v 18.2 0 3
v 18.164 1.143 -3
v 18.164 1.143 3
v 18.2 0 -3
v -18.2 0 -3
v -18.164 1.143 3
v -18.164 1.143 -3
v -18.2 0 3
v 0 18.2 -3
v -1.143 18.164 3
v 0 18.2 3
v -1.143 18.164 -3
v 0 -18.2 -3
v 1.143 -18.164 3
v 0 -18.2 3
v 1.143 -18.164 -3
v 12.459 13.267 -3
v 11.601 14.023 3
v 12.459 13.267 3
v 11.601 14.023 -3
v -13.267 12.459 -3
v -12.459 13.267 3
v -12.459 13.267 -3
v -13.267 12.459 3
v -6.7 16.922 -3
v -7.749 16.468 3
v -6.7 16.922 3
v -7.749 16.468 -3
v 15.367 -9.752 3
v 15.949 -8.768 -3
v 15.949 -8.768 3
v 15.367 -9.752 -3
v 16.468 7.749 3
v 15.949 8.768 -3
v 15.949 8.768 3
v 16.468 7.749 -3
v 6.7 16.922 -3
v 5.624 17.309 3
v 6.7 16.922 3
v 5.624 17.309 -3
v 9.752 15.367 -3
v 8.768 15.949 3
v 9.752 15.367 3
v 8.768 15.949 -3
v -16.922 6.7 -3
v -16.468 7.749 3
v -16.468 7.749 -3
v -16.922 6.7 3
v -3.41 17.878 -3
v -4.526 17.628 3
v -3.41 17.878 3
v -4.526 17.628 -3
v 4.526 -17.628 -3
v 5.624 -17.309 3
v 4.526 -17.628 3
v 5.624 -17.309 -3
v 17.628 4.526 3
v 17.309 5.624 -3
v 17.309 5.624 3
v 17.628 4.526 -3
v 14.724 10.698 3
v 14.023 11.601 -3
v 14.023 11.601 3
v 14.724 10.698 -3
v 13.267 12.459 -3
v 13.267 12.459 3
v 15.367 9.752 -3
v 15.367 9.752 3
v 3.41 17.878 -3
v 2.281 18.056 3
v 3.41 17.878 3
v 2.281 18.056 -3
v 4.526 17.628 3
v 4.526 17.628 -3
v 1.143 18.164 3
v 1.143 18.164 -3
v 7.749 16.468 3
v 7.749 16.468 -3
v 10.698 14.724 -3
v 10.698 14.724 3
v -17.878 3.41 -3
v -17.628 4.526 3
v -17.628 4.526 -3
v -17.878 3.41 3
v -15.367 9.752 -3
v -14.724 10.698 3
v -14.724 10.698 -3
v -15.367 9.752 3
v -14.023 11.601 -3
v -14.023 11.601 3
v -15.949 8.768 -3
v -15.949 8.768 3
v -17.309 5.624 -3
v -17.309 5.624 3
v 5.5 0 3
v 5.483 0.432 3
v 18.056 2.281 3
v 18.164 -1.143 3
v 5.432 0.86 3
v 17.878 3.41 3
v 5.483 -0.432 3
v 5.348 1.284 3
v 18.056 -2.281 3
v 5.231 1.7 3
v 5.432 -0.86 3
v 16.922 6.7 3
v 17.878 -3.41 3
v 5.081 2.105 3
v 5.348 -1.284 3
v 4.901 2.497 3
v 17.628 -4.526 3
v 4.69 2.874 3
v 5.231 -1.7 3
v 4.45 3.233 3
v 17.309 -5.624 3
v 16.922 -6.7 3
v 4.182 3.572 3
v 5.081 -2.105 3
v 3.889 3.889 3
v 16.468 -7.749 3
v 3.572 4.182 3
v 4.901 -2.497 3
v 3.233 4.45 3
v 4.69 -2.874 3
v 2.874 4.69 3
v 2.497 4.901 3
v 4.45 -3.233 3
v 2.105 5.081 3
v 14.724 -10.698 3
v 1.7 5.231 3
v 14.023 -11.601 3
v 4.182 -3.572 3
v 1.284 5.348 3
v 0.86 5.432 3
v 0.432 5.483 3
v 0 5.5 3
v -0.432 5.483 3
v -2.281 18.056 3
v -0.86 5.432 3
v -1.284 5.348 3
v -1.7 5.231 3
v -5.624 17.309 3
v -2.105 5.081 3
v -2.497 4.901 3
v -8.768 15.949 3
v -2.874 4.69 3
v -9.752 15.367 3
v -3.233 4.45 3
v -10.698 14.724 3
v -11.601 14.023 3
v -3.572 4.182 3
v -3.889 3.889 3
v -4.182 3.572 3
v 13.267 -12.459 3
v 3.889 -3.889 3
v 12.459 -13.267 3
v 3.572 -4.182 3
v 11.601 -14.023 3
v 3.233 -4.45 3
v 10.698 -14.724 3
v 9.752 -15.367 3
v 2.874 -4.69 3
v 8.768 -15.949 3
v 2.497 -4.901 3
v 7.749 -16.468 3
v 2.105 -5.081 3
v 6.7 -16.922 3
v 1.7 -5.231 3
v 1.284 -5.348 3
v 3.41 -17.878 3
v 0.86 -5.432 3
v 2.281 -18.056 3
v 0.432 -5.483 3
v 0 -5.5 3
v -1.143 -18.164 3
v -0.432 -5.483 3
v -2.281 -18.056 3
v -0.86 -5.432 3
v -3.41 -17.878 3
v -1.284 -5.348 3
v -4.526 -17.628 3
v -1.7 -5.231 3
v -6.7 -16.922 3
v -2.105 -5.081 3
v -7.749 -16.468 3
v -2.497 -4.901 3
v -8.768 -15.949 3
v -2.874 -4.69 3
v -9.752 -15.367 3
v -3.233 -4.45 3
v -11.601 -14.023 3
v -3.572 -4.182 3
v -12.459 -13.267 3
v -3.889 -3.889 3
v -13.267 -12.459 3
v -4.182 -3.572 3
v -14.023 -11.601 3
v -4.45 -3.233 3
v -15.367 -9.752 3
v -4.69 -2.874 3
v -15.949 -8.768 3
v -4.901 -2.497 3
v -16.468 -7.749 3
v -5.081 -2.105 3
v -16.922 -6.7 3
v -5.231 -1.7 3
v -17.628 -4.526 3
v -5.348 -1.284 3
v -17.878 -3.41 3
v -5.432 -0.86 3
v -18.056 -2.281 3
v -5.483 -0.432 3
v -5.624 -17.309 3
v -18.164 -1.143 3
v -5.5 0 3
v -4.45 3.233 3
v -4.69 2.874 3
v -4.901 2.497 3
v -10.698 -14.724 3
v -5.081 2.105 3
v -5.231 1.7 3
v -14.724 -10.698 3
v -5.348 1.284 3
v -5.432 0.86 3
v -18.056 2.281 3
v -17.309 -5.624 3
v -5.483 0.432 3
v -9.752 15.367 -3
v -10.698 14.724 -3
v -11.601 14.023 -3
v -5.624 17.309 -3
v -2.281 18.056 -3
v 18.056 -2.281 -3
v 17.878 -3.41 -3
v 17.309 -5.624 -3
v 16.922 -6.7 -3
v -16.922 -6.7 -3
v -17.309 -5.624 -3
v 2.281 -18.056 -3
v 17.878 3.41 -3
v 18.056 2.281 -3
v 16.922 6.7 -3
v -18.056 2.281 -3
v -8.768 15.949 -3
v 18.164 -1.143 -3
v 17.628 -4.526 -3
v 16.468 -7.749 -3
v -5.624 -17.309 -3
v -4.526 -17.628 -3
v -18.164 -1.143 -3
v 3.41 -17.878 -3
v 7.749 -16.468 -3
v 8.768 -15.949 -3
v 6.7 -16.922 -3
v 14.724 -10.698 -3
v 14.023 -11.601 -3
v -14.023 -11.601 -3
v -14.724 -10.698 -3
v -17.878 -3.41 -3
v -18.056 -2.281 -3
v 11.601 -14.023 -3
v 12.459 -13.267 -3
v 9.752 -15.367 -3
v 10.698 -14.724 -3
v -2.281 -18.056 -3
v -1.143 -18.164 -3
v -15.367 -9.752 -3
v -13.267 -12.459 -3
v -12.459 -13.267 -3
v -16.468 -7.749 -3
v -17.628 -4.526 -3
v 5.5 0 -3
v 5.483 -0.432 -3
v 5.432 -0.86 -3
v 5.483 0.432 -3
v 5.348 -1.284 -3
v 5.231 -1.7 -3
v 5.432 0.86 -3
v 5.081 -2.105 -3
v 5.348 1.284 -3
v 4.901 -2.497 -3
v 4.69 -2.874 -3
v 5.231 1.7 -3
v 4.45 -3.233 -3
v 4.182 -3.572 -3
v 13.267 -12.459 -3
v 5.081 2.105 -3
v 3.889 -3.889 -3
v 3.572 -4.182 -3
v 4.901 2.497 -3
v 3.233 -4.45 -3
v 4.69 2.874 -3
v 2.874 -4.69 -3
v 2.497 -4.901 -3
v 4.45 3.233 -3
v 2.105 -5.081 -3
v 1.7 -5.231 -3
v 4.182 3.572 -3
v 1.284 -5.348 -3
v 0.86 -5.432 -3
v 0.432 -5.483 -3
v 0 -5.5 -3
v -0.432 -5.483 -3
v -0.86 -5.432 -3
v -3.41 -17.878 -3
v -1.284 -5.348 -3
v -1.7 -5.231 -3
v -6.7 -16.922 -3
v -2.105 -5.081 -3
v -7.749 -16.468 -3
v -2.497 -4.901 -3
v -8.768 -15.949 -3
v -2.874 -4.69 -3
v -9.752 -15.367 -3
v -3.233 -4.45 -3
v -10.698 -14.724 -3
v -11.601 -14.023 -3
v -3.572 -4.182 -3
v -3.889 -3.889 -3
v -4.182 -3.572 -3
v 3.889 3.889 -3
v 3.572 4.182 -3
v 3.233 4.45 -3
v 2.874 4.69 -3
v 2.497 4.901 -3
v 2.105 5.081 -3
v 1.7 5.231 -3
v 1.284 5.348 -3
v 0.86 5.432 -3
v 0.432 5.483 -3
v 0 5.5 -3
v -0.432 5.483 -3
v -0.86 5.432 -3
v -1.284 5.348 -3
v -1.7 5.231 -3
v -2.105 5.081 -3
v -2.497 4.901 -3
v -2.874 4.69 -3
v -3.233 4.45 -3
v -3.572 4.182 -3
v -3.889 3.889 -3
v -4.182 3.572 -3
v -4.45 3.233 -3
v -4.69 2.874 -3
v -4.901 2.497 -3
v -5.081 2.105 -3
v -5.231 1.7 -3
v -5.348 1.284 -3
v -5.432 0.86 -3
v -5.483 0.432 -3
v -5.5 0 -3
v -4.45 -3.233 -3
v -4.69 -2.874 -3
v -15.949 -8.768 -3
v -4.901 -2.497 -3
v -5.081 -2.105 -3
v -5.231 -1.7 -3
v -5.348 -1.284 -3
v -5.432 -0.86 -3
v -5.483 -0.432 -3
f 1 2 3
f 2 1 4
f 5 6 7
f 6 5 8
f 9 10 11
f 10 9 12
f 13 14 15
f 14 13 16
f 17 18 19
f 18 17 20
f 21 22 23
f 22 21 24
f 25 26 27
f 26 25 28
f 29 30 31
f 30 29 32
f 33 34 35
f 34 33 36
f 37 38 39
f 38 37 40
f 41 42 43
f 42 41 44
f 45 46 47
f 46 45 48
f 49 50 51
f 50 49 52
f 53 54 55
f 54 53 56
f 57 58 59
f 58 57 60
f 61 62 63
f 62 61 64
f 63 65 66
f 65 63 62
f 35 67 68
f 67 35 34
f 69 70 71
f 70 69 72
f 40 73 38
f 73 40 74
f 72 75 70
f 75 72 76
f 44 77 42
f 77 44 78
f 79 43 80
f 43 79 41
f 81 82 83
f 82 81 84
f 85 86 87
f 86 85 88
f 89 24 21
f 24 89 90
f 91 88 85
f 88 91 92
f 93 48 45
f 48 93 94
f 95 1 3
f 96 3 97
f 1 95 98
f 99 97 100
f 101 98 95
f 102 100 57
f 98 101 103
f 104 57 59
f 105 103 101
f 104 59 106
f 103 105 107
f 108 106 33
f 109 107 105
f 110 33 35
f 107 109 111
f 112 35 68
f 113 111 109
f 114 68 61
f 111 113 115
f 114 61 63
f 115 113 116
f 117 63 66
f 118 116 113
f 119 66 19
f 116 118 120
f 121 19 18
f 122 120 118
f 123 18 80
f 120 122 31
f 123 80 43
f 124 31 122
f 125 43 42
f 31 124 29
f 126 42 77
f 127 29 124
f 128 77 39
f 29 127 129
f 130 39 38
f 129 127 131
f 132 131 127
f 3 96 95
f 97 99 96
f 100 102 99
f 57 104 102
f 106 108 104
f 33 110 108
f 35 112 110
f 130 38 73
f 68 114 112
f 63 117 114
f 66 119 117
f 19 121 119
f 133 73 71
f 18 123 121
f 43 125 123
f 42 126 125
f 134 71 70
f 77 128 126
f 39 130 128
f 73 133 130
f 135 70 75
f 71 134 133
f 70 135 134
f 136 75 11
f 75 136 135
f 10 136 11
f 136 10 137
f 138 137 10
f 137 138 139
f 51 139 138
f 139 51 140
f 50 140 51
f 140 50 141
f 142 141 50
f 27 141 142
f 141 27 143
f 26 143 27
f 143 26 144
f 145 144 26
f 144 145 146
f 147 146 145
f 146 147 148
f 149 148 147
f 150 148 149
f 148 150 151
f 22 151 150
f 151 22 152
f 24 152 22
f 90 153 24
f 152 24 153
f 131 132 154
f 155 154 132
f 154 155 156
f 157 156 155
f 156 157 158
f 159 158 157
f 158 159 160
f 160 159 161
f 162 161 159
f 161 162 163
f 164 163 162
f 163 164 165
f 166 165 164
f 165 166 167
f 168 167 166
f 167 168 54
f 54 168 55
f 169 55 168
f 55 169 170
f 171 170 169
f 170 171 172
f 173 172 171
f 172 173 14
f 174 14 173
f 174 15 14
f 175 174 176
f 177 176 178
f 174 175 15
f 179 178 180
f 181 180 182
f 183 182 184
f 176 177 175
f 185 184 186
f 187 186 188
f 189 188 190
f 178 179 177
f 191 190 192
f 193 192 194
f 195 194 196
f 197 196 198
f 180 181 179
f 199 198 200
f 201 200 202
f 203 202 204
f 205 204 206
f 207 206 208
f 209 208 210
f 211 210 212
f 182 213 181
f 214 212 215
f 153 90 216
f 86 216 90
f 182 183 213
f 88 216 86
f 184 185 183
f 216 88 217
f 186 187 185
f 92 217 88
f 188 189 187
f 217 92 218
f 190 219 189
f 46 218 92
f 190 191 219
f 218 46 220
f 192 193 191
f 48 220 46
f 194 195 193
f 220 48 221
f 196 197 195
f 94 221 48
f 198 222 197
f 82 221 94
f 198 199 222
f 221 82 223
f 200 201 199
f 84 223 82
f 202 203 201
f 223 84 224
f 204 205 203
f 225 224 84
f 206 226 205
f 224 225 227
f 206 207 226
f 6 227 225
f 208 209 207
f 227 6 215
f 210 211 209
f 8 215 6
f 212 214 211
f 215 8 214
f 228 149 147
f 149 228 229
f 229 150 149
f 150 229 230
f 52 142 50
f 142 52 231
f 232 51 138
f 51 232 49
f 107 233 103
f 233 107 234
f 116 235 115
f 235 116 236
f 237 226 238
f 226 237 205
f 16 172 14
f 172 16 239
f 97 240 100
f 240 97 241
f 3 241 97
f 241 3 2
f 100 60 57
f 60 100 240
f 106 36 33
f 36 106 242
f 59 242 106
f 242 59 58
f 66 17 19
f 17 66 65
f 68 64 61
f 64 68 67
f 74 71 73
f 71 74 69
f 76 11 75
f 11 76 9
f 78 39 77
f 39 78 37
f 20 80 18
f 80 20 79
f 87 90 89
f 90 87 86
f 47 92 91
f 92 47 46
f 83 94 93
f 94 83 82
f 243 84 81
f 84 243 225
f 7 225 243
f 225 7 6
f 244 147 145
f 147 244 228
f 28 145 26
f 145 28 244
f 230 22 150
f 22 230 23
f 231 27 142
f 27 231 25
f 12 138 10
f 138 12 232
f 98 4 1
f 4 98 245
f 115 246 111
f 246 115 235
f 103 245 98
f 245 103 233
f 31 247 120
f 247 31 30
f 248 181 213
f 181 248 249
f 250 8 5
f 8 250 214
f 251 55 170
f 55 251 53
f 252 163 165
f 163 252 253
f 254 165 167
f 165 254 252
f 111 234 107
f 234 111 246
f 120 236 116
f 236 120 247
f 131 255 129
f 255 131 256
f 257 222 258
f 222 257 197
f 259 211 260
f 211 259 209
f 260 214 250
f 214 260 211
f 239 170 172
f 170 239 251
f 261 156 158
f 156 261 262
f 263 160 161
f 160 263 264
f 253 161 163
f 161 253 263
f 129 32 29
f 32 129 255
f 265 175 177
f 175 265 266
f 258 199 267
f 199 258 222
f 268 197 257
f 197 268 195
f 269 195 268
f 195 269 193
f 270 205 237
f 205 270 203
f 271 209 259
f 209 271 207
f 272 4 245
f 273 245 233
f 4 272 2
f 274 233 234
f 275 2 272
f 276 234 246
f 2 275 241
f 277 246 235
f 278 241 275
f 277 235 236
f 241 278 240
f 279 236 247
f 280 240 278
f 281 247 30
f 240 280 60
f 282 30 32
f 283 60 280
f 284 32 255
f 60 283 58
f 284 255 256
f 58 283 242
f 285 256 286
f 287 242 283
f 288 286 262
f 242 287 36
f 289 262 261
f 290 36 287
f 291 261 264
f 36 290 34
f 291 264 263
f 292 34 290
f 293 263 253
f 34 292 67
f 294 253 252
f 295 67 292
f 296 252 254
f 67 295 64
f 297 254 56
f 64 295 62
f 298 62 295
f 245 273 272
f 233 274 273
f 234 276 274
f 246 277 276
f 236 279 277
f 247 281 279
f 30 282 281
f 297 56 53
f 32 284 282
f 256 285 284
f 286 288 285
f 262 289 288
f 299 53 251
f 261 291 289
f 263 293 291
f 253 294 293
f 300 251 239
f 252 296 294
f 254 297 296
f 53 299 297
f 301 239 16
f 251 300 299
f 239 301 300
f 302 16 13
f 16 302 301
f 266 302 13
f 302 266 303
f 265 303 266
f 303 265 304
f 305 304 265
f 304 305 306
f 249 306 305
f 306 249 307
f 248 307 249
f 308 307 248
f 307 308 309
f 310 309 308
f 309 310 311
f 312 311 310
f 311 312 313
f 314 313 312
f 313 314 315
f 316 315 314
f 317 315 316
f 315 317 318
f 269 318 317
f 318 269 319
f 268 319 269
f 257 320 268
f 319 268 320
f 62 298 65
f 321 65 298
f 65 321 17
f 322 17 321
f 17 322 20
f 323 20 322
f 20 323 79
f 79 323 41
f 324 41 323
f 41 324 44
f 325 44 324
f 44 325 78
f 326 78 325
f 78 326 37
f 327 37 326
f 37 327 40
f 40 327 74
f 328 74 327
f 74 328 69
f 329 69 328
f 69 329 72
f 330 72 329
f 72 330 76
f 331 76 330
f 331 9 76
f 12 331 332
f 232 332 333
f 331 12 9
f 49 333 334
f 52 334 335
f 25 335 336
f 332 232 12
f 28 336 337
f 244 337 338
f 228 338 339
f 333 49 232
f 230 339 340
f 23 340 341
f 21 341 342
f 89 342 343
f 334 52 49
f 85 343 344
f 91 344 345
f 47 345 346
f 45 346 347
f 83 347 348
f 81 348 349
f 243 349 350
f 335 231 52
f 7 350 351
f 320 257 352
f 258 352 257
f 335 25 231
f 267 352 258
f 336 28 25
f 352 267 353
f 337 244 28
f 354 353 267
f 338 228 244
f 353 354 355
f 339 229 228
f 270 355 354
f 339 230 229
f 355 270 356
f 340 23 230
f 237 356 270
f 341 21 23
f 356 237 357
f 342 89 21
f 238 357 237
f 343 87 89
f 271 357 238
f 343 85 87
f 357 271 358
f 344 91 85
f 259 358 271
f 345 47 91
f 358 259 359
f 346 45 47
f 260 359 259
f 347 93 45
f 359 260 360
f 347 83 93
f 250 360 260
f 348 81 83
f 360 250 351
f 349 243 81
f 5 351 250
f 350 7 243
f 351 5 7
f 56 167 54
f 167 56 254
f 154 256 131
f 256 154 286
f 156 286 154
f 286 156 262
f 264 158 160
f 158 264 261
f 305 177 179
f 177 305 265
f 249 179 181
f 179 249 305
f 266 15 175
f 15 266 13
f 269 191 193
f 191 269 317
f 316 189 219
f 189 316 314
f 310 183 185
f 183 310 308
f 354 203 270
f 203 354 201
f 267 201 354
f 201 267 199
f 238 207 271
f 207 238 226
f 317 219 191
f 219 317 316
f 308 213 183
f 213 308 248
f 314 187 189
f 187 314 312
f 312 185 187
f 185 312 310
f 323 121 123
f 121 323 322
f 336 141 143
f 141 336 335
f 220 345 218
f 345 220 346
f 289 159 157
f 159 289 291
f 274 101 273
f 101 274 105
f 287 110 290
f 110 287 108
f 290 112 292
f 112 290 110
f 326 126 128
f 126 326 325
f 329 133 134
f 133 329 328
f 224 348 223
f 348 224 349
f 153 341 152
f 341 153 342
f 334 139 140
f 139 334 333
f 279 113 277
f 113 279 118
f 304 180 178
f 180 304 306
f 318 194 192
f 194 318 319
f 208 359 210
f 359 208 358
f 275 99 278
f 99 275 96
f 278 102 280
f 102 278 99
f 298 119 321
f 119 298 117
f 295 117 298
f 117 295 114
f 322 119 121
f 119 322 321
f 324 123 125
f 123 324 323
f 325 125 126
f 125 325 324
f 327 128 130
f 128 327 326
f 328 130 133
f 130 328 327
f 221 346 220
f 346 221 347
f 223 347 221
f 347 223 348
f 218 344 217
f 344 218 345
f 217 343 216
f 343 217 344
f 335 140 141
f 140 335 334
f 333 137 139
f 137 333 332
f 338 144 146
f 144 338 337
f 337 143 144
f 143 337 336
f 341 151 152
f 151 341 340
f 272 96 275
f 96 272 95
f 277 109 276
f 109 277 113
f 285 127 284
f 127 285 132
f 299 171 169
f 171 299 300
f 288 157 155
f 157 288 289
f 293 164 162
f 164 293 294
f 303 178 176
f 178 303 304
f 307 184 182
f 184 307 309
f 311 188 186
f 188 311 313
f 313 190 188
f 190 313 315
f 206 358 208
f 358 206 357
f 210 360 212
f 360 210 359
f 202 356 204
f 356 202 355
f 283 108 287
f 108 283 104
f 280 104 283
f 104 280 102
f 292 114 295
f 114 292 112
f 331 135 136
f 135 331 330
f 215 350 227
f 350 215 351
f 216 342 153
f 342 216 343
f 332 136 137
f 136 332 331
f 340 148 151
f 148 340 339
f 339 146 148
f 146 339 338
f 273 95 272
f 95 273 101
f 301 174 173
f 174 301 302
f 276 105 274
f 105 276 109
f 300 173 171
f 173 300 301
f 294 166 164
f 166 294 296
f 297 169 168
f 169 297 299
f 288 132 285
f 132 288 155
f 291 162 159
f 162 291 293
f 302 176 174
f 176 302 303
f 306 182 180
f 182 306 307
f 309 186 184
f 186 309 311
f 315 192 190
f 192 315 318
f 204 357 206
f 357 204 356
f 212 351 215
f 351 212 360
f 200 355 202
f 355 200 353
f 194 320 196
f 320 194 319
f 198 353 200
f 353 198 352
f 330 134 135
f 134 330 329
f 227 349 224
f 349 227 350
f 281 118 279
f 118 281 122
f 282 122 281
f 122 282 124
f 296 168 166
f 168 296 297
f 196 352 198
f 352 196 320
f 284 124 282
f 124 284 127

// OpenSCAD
difference() {
cylinder(r=18.2,h=6,center=true, $fn=100);
    cylinder(r=5.5,h=10, center=true,$fn=80);
    
    
}
